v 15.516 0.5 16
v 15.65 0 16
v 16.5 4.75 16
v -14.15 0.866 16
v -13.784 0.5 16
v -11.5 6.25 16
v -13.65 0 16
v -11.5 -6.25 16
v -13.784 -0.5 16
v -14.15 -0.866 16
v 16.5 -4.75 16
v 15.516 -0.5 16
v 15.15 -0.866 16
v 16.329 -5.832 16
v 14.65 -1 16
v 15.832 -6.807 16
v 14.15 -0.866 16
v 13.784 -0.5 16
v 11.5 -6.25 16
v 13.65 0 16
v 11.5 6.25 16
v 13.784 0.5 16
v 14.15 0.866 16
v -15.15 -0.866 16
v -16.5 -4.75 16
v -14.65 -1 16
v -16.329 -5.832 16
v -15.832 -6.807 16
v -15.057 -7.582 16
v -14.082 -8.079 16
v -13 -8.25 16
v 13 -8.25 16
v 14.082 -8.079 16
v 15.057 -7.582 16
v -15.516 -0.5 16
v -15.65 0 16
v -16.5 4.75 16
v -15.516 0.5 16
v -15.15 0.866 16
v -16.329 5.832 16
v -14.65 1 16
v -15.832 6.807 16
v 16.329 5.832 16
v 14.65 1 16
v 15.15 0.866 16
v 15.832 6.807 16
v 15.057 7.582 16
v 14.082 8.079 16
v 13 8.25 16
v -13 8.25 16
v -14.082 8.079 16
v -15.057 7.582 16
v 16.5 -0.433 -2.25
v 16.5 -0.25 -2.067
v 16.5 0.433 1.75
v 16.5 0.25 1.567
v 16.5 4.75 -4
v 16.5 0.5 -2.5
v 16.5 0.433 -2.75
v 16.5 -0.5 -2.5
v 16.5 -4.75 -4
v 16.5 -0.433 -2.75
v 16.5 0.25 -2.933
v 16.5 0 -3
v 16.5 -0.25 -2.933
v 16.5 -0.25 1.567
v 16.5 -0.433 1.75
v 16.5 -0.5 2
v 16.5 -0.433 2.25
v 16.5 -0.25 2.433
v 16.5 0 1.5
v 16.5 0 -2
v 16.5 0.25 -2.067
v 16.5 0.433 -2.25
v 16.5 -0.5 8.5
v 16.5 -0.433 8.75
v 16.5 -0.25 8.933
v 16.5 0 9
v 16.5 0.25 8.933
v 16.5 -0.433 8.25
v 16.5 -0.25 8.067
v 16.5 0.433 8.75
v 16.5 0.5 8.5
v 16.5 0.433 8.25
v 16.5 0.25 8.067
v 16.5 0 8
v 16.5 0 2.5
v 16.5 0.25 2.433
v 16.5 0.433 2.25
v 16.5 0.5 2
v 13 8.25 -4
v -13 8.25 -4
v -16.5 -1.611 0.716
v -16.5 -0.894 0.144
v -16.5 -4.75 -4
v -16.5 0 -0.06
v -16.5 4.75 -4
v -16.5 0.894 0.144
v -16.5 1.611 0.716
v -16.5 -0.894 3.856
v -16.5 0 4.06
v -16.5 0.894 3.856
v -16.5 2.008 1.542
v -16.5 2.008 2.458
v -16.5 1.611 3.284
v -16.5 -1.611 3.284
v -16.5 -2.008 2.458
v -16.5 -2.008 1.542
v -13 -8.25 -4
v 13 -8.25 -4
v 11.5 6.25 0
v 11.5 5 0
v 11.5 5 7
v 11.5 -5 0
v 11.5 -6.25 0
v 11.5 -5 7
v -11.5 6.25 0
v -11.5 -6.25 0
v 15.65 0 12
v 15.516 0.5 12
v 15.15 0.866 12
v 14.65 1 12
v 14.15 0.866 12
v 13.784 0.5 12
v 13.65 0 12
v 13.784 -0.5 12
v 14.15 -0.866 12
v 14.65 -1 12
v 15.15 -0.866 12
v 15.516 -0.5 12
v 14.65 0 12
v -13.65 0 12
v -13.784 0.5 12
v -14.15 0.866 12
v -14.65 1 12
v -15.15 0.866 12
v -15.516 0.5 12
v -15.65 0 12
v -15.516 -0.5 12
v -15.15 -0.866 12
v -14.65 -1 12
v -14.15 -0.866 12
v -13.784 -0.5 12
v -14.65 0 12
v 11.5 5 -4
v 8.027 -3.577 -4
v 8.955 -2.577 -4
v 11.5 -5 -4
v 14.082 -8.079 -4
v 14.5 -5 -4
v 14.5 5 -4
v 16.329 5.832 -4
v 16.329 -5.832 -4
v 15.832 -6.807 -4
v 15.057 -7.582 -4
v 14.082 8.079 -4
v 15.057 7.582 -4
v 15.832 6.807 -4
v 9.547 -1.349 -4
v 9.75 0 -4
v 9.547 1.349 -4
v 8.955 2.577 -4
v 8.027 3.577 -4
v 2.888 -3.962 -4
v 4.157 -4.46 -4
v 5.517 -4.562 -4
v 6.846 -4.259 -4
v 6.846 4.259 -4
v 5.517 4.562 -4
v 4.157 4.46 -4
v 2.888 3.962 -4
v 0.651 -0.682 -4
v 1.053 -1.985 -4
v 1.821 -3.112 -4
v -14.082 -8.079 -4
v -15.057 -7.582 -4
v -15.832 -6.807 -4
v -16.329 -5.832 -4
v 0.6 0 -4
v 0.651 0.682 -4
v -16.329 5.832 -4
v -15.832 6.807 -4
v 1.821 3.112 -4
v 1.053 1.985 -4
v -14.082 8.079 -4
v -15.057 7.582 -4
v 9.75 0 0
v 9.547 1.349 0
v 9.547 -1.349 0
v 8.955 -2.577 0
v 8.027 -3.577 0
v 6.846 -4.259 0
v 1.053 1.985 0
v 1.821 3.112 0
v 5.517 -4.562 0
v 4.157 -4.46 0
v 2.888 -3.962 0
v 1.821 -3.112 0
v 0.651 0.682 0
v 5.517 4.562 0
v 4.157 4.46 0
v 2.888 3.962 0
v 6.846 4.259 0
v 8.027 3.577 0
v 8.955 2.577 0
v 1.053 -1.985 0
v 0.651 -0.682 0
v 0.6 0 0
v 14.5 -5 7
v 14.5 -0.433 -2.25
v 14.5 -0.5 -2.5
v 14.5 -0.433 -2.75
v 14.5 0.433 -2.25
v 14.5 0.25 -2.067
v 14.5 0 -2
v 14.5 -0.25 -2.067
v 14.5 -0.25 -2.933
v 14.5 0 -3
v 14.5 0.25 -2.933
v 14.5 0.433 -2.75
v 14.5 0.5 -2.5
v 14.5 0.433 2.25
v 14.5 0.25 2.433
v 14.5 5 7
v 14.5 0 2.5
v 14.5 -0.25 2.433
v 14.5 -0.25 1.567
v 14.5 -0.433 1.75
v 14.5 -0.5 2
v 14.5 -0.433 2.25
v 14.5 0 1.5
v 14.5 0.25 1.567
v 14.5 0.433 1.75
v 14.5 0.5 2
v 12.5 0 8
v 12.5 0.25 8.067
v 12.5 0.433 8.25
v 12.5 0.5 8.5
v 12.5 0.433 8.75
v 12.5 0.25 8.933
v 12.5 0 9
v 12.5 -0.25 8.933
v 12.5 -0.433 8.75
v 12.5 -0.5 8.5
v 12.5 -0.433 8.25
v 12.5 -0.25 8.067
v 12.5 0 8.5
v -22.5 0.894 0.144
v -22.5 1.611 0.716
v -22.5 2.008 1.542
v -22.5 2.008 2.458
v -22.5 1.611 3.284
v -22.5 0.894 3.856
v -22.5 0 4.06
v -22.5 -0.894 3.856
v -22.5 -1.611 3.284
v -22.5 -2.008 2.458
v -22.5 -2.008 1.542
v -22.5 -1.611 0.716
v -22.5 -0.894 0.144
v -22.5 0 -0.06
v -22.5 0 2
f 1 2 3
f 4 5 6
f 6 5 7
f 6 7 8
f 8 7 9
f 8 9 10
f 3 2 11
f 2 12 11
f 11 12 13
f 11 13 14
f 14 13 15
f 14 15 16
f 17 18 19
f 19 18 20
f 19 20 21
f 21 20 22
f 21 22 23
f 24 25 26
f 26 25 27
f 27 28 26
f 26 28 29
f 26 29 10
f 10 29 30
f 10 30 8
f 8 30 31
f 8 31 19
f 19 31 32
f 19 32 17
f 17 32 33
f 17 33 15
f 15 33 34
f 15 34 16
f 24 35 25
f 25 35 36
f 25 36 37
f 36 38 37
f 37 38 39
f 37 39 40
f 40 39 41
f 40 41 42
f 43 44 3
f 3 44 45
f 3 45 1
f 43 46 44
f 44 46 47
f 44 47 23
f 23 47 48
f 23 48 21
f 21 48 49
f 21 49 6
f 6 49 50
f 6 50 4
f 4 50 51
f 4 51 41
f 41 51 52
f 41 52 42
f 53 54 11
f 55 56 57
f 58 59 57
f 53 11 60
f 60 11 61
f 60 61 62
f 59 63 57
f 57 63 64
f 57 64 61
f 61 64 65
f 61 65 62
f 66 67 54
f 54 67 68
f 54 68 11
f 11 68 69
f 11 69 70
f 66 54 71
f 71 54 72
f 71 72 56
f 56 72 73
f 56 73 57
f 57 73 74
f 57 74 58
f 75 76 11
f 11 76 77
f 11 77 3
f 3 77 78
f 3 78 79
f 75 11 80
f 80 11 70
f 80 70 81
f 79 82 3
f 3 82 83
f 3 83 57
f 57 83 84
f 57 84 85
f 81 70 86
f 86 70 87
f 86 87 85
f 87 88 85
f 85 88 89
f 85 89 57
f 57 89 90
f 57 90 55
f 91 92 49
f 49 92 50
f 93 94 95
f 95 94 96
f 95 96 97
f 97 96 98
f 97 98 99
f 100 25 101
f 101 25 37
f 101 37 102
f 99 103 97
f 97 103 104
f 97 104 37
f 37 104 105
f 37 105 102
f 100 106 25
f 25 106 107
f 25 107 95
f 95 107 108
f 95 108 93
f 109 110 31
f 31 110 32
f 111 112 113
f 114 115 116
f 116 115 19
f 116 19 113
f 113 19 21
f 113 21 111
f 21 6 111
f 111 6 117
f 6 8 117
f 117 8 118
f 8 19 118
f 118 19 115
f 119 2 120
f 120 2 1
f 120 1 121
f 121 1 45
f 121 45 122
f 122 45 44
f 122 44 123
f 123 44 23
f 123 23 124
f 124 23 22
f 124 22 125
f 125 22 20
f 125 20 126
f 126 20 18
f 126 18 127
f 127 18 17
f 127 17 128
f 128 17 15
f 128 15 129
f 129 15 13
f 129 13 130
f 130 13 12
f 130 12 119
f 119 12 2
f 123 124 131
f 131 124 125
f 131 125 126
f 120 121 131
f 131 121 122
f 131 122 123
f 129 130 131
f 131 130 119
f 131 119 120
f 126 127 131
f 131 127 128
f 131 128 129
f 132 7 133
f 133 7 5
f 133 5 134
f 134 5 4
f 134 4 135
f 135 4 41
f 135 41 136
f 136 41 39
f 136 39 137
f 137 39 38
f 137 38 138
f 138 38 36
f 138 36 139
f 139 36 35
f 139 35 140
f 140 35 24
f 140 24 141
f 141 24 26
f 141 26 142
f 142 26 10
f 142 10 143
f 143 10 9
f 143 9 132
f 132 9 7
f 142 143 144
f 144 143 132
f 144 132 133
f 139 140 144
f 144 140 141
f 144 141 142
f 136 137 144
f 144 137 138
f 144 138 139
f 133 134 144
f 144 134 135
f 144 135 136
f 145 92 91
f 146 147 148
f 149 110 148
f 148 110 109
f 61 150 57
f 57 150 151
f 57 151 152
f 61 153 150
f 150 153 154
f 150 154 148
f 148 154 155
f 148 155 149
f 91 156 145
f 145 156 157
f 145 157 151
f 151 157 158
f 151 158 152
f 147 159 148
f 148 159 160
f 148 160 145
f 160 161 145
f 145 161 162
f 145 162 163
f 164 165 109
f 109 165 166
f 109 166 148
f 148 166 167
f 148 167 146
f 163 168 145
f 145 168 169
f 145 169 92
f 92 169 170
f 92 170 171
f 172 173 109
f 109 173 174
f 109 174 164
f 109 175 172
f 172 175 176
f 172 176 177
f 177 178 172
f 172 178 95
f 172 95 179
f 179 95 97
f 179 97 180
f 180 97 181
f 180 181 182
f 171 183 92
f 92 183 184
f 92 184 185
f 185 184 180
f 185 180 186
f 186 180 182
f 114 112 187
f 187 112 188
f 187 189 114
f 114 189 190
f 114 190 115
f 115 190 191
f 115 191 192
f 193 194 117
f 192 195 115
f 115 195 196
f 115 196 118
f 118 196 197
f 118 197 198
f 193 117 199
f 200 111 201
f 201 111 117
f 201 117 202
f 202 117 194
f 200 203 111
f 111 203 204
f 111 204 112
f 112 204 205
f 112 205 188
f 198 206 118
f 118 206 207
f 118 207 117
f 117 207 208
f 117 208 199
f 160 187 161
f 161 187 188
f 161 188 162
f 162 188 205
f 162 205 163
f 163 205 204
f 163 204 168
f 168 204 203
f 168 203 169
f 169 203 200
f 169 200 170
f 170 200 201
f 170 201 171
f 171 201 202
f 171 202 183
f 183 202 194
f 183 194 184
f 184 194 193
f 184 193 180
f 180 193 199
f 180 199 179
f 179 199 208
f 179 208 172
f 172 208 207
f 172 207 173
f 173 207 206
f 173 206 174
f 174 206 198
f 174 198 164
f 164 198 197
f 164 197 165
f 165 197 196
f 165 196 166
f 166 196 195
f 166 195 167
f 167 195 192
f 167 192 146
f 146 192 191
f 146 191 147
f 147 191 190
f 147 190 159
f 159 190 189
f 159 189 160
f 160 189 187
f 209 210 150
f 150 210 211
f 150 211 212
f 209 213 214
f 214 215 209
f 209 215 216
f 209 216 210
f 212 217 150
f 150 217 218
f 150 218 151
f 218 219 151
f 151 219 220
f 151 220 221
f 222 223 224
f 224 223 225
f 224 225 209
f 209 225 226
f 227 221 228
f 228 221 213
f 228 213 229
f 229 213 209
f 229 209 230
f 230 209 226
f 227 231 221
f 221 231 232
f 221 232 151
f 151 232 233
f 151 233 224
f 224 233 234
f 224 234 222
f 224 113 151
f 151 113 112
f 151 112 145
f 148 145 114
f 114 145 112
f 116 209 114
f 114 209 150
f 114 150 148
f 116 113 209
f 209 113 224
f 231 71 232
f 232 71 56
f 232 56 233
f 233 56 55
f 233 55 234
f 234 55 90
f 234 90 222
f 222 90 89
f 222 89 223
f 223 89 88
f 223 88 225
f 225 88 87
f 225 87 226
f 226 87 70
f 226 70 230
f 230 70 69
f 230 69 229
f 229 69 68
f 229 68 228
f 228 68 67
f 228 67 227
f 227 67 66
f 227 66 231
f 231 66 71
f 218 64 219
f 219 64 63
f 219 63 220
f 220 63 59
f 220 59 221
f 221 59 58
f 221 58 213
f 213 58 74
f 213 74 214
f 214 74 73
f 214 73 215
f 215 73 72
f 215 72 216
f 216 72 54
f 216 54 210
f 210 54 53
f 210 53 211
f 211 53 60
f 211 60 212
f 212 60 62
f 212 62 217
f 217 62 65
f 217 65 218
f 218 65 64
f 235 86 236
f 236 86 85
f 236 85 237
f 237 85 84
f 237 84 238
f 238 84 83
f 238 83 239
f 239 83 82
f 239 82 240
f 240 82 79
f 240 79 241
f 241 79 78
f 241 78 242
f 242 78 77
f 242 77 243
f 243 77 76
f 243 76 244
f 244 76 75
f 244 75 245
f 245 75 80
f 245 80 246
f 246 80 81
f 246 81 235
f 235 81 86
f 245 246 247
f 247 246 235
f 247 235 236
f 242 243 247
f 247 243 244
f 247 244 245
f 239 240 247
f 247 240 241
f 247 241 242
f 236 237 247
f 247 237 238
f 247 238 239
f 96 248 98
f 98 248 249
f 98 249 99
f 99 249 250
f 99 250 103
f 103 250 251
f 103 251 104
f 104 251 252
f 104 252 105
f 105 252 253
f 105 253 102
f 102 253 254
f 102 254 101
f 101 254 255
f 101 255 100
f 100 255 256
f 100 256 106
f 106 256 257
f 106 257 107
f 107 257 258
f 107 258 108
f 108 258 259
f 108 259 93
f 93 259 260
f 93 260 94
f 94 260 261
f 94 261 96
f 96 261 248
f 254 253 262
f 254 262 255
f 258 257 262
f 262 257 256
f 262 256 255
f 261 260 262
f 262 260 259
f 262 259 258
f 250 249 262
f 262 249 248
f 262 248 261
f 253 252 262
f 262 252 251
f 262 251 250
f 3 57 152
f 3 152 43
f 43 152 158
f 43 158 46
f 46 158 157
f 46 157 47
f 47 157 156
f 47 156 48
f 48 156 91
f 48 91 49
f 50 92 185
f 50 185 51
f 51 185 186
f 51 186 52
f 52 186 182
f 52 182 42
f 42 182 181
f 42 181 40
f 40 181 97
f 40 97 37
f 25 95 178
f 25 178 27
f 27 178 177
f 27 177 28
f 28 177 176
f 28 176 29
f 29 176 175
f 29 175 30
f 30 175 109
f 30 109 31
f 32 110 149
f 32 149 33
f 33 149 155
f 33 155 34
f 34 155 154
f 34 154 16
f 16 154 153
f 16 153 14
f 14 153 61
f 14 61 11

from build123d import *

# Parameters (mm, degrees)
SKETCH1_W           = 33
SKETCH1_H           = 16.5
SKETCH1_W_2         = 23
SKETCH1_H_2         = 12.5
BOSS_EXTRUDE1_DEPTH = 16
SKETCH2_R           = 1
CUT_EXTRUDE1_DEPTH  = 4
SKETCH6_R           = 4.575
BOSS_EXTRUDE5_DEPTH = 4
SKETCH7_W           = 3
SKETCH7_H           = 10
CUT_EXTRUDE3_DEPTH  = 11
SKETCH9_R           = 0.5
CUT_EXTRUDE4_DEPTH  = 4
SKETCH10_R          = 2.06
BOSS_EXTRUDE6_DEPTH = 6
FILLET1_R           = 3.5


with BuildPart() as part:
    # Sketch1 → Boss-Extrude1 (new body)
    with BuildSketch(Plane.XY):
        Rectangle(SKETCH1_W, SKETCH1_H)
        Rectangle(SKETCH1_W_2, SKETCH1_H_2, mode=Mode.SUBTRACT)
    extrude(amount=BOSS_EXTRUDE1_DEPTH)

    # Sketch2 → Cut-Extrude1 (cut)
    with BuildSketch(Plane.XY.offset(16)):
        with Locations((-14.65, 0)):
            Circle(SKETCH2_R)
        with Locations(Location((14.65, 0, 0), (0, 0, 180))):
            Circle(SKETCH2_R)
    extrude(amount=-CUT_EXTRUDE1_DEPTH, mode=Mode.SUBTRACT)

    # Sketch6 → Boss-Extrude5 (add)
    with BuildSketch(Plane(origin=(0, 0, 0), x_dir=(-1, 0, 0), z_dir=(0, 0, -1))):
        Polygon((-11.5, 8.25), (16.5, 8.25), (16.5, -8.25), (-11.5, -8.25), (-16.5, -8.25), (-16.5, 8.25), align=None)
        with Locations((-5.175, 0)):
            Circle(SKETCH6_R, mode=Mode.SUBTRACT)
    extrude(amount=BOSS_EXTRUDE5_DEPTH)

    # Sketch7 → Cut-Extrude3 (cut)
    with BuildSketch(Plane(origin=(0, 0, -4), x_dir=(-1, 0, 0), z_dir=(0, 0, -1))):
        with Locations((-13, 0)):
            Rectangle(SKETCH7_W, SKETCH7_H)
    extrude(amount=-CUT_EXTRUDE3_DEPTH, mode=Mode.SUBTRACT)

    # Sketch9 → Cut-Extrude4 (cut)
    with BuildSketch(Plane(origin=(16.5, 0, 0), x_dir=(0, 0, -1), z_dir=(1, 0, 0))):
        with Locations((-2, 0)):
            Circle(SKETCH9_R)
        with Locations((2.5, 0)):
            Circle(SKETCH9_R)
        with Locations((-8.5, 0)):
            Circle(SKETCH9_R)
    extrude(amount=-CUT_EXTRUDE4_DEPTH, mode=Mode.SUBTRACT)

    # Sketch10 → Boss-Extrude6 (add)
    with BuildSketch(Plane.ZY.offset(16.5)):
        with Locations(Location((2, 0, 0), (0, 0, 180))):
            Circle(SKETCH10_R)
    extrude(amount=BOSS_EXTRUDE6_DEPTH)

    # Fillet1
    fillet1_edges = [part.edges().sort_by_distance(p)[0] for p in [
        (16.5, -8.25, 6),
        (-16.5, -8.25, 6),
        (-16.5, 8.25, 6),
        (16.5, 8.25, 6),
    ]]
    fillet(fillet1_edges, radius=FILLET1_R)


solid = part.part
